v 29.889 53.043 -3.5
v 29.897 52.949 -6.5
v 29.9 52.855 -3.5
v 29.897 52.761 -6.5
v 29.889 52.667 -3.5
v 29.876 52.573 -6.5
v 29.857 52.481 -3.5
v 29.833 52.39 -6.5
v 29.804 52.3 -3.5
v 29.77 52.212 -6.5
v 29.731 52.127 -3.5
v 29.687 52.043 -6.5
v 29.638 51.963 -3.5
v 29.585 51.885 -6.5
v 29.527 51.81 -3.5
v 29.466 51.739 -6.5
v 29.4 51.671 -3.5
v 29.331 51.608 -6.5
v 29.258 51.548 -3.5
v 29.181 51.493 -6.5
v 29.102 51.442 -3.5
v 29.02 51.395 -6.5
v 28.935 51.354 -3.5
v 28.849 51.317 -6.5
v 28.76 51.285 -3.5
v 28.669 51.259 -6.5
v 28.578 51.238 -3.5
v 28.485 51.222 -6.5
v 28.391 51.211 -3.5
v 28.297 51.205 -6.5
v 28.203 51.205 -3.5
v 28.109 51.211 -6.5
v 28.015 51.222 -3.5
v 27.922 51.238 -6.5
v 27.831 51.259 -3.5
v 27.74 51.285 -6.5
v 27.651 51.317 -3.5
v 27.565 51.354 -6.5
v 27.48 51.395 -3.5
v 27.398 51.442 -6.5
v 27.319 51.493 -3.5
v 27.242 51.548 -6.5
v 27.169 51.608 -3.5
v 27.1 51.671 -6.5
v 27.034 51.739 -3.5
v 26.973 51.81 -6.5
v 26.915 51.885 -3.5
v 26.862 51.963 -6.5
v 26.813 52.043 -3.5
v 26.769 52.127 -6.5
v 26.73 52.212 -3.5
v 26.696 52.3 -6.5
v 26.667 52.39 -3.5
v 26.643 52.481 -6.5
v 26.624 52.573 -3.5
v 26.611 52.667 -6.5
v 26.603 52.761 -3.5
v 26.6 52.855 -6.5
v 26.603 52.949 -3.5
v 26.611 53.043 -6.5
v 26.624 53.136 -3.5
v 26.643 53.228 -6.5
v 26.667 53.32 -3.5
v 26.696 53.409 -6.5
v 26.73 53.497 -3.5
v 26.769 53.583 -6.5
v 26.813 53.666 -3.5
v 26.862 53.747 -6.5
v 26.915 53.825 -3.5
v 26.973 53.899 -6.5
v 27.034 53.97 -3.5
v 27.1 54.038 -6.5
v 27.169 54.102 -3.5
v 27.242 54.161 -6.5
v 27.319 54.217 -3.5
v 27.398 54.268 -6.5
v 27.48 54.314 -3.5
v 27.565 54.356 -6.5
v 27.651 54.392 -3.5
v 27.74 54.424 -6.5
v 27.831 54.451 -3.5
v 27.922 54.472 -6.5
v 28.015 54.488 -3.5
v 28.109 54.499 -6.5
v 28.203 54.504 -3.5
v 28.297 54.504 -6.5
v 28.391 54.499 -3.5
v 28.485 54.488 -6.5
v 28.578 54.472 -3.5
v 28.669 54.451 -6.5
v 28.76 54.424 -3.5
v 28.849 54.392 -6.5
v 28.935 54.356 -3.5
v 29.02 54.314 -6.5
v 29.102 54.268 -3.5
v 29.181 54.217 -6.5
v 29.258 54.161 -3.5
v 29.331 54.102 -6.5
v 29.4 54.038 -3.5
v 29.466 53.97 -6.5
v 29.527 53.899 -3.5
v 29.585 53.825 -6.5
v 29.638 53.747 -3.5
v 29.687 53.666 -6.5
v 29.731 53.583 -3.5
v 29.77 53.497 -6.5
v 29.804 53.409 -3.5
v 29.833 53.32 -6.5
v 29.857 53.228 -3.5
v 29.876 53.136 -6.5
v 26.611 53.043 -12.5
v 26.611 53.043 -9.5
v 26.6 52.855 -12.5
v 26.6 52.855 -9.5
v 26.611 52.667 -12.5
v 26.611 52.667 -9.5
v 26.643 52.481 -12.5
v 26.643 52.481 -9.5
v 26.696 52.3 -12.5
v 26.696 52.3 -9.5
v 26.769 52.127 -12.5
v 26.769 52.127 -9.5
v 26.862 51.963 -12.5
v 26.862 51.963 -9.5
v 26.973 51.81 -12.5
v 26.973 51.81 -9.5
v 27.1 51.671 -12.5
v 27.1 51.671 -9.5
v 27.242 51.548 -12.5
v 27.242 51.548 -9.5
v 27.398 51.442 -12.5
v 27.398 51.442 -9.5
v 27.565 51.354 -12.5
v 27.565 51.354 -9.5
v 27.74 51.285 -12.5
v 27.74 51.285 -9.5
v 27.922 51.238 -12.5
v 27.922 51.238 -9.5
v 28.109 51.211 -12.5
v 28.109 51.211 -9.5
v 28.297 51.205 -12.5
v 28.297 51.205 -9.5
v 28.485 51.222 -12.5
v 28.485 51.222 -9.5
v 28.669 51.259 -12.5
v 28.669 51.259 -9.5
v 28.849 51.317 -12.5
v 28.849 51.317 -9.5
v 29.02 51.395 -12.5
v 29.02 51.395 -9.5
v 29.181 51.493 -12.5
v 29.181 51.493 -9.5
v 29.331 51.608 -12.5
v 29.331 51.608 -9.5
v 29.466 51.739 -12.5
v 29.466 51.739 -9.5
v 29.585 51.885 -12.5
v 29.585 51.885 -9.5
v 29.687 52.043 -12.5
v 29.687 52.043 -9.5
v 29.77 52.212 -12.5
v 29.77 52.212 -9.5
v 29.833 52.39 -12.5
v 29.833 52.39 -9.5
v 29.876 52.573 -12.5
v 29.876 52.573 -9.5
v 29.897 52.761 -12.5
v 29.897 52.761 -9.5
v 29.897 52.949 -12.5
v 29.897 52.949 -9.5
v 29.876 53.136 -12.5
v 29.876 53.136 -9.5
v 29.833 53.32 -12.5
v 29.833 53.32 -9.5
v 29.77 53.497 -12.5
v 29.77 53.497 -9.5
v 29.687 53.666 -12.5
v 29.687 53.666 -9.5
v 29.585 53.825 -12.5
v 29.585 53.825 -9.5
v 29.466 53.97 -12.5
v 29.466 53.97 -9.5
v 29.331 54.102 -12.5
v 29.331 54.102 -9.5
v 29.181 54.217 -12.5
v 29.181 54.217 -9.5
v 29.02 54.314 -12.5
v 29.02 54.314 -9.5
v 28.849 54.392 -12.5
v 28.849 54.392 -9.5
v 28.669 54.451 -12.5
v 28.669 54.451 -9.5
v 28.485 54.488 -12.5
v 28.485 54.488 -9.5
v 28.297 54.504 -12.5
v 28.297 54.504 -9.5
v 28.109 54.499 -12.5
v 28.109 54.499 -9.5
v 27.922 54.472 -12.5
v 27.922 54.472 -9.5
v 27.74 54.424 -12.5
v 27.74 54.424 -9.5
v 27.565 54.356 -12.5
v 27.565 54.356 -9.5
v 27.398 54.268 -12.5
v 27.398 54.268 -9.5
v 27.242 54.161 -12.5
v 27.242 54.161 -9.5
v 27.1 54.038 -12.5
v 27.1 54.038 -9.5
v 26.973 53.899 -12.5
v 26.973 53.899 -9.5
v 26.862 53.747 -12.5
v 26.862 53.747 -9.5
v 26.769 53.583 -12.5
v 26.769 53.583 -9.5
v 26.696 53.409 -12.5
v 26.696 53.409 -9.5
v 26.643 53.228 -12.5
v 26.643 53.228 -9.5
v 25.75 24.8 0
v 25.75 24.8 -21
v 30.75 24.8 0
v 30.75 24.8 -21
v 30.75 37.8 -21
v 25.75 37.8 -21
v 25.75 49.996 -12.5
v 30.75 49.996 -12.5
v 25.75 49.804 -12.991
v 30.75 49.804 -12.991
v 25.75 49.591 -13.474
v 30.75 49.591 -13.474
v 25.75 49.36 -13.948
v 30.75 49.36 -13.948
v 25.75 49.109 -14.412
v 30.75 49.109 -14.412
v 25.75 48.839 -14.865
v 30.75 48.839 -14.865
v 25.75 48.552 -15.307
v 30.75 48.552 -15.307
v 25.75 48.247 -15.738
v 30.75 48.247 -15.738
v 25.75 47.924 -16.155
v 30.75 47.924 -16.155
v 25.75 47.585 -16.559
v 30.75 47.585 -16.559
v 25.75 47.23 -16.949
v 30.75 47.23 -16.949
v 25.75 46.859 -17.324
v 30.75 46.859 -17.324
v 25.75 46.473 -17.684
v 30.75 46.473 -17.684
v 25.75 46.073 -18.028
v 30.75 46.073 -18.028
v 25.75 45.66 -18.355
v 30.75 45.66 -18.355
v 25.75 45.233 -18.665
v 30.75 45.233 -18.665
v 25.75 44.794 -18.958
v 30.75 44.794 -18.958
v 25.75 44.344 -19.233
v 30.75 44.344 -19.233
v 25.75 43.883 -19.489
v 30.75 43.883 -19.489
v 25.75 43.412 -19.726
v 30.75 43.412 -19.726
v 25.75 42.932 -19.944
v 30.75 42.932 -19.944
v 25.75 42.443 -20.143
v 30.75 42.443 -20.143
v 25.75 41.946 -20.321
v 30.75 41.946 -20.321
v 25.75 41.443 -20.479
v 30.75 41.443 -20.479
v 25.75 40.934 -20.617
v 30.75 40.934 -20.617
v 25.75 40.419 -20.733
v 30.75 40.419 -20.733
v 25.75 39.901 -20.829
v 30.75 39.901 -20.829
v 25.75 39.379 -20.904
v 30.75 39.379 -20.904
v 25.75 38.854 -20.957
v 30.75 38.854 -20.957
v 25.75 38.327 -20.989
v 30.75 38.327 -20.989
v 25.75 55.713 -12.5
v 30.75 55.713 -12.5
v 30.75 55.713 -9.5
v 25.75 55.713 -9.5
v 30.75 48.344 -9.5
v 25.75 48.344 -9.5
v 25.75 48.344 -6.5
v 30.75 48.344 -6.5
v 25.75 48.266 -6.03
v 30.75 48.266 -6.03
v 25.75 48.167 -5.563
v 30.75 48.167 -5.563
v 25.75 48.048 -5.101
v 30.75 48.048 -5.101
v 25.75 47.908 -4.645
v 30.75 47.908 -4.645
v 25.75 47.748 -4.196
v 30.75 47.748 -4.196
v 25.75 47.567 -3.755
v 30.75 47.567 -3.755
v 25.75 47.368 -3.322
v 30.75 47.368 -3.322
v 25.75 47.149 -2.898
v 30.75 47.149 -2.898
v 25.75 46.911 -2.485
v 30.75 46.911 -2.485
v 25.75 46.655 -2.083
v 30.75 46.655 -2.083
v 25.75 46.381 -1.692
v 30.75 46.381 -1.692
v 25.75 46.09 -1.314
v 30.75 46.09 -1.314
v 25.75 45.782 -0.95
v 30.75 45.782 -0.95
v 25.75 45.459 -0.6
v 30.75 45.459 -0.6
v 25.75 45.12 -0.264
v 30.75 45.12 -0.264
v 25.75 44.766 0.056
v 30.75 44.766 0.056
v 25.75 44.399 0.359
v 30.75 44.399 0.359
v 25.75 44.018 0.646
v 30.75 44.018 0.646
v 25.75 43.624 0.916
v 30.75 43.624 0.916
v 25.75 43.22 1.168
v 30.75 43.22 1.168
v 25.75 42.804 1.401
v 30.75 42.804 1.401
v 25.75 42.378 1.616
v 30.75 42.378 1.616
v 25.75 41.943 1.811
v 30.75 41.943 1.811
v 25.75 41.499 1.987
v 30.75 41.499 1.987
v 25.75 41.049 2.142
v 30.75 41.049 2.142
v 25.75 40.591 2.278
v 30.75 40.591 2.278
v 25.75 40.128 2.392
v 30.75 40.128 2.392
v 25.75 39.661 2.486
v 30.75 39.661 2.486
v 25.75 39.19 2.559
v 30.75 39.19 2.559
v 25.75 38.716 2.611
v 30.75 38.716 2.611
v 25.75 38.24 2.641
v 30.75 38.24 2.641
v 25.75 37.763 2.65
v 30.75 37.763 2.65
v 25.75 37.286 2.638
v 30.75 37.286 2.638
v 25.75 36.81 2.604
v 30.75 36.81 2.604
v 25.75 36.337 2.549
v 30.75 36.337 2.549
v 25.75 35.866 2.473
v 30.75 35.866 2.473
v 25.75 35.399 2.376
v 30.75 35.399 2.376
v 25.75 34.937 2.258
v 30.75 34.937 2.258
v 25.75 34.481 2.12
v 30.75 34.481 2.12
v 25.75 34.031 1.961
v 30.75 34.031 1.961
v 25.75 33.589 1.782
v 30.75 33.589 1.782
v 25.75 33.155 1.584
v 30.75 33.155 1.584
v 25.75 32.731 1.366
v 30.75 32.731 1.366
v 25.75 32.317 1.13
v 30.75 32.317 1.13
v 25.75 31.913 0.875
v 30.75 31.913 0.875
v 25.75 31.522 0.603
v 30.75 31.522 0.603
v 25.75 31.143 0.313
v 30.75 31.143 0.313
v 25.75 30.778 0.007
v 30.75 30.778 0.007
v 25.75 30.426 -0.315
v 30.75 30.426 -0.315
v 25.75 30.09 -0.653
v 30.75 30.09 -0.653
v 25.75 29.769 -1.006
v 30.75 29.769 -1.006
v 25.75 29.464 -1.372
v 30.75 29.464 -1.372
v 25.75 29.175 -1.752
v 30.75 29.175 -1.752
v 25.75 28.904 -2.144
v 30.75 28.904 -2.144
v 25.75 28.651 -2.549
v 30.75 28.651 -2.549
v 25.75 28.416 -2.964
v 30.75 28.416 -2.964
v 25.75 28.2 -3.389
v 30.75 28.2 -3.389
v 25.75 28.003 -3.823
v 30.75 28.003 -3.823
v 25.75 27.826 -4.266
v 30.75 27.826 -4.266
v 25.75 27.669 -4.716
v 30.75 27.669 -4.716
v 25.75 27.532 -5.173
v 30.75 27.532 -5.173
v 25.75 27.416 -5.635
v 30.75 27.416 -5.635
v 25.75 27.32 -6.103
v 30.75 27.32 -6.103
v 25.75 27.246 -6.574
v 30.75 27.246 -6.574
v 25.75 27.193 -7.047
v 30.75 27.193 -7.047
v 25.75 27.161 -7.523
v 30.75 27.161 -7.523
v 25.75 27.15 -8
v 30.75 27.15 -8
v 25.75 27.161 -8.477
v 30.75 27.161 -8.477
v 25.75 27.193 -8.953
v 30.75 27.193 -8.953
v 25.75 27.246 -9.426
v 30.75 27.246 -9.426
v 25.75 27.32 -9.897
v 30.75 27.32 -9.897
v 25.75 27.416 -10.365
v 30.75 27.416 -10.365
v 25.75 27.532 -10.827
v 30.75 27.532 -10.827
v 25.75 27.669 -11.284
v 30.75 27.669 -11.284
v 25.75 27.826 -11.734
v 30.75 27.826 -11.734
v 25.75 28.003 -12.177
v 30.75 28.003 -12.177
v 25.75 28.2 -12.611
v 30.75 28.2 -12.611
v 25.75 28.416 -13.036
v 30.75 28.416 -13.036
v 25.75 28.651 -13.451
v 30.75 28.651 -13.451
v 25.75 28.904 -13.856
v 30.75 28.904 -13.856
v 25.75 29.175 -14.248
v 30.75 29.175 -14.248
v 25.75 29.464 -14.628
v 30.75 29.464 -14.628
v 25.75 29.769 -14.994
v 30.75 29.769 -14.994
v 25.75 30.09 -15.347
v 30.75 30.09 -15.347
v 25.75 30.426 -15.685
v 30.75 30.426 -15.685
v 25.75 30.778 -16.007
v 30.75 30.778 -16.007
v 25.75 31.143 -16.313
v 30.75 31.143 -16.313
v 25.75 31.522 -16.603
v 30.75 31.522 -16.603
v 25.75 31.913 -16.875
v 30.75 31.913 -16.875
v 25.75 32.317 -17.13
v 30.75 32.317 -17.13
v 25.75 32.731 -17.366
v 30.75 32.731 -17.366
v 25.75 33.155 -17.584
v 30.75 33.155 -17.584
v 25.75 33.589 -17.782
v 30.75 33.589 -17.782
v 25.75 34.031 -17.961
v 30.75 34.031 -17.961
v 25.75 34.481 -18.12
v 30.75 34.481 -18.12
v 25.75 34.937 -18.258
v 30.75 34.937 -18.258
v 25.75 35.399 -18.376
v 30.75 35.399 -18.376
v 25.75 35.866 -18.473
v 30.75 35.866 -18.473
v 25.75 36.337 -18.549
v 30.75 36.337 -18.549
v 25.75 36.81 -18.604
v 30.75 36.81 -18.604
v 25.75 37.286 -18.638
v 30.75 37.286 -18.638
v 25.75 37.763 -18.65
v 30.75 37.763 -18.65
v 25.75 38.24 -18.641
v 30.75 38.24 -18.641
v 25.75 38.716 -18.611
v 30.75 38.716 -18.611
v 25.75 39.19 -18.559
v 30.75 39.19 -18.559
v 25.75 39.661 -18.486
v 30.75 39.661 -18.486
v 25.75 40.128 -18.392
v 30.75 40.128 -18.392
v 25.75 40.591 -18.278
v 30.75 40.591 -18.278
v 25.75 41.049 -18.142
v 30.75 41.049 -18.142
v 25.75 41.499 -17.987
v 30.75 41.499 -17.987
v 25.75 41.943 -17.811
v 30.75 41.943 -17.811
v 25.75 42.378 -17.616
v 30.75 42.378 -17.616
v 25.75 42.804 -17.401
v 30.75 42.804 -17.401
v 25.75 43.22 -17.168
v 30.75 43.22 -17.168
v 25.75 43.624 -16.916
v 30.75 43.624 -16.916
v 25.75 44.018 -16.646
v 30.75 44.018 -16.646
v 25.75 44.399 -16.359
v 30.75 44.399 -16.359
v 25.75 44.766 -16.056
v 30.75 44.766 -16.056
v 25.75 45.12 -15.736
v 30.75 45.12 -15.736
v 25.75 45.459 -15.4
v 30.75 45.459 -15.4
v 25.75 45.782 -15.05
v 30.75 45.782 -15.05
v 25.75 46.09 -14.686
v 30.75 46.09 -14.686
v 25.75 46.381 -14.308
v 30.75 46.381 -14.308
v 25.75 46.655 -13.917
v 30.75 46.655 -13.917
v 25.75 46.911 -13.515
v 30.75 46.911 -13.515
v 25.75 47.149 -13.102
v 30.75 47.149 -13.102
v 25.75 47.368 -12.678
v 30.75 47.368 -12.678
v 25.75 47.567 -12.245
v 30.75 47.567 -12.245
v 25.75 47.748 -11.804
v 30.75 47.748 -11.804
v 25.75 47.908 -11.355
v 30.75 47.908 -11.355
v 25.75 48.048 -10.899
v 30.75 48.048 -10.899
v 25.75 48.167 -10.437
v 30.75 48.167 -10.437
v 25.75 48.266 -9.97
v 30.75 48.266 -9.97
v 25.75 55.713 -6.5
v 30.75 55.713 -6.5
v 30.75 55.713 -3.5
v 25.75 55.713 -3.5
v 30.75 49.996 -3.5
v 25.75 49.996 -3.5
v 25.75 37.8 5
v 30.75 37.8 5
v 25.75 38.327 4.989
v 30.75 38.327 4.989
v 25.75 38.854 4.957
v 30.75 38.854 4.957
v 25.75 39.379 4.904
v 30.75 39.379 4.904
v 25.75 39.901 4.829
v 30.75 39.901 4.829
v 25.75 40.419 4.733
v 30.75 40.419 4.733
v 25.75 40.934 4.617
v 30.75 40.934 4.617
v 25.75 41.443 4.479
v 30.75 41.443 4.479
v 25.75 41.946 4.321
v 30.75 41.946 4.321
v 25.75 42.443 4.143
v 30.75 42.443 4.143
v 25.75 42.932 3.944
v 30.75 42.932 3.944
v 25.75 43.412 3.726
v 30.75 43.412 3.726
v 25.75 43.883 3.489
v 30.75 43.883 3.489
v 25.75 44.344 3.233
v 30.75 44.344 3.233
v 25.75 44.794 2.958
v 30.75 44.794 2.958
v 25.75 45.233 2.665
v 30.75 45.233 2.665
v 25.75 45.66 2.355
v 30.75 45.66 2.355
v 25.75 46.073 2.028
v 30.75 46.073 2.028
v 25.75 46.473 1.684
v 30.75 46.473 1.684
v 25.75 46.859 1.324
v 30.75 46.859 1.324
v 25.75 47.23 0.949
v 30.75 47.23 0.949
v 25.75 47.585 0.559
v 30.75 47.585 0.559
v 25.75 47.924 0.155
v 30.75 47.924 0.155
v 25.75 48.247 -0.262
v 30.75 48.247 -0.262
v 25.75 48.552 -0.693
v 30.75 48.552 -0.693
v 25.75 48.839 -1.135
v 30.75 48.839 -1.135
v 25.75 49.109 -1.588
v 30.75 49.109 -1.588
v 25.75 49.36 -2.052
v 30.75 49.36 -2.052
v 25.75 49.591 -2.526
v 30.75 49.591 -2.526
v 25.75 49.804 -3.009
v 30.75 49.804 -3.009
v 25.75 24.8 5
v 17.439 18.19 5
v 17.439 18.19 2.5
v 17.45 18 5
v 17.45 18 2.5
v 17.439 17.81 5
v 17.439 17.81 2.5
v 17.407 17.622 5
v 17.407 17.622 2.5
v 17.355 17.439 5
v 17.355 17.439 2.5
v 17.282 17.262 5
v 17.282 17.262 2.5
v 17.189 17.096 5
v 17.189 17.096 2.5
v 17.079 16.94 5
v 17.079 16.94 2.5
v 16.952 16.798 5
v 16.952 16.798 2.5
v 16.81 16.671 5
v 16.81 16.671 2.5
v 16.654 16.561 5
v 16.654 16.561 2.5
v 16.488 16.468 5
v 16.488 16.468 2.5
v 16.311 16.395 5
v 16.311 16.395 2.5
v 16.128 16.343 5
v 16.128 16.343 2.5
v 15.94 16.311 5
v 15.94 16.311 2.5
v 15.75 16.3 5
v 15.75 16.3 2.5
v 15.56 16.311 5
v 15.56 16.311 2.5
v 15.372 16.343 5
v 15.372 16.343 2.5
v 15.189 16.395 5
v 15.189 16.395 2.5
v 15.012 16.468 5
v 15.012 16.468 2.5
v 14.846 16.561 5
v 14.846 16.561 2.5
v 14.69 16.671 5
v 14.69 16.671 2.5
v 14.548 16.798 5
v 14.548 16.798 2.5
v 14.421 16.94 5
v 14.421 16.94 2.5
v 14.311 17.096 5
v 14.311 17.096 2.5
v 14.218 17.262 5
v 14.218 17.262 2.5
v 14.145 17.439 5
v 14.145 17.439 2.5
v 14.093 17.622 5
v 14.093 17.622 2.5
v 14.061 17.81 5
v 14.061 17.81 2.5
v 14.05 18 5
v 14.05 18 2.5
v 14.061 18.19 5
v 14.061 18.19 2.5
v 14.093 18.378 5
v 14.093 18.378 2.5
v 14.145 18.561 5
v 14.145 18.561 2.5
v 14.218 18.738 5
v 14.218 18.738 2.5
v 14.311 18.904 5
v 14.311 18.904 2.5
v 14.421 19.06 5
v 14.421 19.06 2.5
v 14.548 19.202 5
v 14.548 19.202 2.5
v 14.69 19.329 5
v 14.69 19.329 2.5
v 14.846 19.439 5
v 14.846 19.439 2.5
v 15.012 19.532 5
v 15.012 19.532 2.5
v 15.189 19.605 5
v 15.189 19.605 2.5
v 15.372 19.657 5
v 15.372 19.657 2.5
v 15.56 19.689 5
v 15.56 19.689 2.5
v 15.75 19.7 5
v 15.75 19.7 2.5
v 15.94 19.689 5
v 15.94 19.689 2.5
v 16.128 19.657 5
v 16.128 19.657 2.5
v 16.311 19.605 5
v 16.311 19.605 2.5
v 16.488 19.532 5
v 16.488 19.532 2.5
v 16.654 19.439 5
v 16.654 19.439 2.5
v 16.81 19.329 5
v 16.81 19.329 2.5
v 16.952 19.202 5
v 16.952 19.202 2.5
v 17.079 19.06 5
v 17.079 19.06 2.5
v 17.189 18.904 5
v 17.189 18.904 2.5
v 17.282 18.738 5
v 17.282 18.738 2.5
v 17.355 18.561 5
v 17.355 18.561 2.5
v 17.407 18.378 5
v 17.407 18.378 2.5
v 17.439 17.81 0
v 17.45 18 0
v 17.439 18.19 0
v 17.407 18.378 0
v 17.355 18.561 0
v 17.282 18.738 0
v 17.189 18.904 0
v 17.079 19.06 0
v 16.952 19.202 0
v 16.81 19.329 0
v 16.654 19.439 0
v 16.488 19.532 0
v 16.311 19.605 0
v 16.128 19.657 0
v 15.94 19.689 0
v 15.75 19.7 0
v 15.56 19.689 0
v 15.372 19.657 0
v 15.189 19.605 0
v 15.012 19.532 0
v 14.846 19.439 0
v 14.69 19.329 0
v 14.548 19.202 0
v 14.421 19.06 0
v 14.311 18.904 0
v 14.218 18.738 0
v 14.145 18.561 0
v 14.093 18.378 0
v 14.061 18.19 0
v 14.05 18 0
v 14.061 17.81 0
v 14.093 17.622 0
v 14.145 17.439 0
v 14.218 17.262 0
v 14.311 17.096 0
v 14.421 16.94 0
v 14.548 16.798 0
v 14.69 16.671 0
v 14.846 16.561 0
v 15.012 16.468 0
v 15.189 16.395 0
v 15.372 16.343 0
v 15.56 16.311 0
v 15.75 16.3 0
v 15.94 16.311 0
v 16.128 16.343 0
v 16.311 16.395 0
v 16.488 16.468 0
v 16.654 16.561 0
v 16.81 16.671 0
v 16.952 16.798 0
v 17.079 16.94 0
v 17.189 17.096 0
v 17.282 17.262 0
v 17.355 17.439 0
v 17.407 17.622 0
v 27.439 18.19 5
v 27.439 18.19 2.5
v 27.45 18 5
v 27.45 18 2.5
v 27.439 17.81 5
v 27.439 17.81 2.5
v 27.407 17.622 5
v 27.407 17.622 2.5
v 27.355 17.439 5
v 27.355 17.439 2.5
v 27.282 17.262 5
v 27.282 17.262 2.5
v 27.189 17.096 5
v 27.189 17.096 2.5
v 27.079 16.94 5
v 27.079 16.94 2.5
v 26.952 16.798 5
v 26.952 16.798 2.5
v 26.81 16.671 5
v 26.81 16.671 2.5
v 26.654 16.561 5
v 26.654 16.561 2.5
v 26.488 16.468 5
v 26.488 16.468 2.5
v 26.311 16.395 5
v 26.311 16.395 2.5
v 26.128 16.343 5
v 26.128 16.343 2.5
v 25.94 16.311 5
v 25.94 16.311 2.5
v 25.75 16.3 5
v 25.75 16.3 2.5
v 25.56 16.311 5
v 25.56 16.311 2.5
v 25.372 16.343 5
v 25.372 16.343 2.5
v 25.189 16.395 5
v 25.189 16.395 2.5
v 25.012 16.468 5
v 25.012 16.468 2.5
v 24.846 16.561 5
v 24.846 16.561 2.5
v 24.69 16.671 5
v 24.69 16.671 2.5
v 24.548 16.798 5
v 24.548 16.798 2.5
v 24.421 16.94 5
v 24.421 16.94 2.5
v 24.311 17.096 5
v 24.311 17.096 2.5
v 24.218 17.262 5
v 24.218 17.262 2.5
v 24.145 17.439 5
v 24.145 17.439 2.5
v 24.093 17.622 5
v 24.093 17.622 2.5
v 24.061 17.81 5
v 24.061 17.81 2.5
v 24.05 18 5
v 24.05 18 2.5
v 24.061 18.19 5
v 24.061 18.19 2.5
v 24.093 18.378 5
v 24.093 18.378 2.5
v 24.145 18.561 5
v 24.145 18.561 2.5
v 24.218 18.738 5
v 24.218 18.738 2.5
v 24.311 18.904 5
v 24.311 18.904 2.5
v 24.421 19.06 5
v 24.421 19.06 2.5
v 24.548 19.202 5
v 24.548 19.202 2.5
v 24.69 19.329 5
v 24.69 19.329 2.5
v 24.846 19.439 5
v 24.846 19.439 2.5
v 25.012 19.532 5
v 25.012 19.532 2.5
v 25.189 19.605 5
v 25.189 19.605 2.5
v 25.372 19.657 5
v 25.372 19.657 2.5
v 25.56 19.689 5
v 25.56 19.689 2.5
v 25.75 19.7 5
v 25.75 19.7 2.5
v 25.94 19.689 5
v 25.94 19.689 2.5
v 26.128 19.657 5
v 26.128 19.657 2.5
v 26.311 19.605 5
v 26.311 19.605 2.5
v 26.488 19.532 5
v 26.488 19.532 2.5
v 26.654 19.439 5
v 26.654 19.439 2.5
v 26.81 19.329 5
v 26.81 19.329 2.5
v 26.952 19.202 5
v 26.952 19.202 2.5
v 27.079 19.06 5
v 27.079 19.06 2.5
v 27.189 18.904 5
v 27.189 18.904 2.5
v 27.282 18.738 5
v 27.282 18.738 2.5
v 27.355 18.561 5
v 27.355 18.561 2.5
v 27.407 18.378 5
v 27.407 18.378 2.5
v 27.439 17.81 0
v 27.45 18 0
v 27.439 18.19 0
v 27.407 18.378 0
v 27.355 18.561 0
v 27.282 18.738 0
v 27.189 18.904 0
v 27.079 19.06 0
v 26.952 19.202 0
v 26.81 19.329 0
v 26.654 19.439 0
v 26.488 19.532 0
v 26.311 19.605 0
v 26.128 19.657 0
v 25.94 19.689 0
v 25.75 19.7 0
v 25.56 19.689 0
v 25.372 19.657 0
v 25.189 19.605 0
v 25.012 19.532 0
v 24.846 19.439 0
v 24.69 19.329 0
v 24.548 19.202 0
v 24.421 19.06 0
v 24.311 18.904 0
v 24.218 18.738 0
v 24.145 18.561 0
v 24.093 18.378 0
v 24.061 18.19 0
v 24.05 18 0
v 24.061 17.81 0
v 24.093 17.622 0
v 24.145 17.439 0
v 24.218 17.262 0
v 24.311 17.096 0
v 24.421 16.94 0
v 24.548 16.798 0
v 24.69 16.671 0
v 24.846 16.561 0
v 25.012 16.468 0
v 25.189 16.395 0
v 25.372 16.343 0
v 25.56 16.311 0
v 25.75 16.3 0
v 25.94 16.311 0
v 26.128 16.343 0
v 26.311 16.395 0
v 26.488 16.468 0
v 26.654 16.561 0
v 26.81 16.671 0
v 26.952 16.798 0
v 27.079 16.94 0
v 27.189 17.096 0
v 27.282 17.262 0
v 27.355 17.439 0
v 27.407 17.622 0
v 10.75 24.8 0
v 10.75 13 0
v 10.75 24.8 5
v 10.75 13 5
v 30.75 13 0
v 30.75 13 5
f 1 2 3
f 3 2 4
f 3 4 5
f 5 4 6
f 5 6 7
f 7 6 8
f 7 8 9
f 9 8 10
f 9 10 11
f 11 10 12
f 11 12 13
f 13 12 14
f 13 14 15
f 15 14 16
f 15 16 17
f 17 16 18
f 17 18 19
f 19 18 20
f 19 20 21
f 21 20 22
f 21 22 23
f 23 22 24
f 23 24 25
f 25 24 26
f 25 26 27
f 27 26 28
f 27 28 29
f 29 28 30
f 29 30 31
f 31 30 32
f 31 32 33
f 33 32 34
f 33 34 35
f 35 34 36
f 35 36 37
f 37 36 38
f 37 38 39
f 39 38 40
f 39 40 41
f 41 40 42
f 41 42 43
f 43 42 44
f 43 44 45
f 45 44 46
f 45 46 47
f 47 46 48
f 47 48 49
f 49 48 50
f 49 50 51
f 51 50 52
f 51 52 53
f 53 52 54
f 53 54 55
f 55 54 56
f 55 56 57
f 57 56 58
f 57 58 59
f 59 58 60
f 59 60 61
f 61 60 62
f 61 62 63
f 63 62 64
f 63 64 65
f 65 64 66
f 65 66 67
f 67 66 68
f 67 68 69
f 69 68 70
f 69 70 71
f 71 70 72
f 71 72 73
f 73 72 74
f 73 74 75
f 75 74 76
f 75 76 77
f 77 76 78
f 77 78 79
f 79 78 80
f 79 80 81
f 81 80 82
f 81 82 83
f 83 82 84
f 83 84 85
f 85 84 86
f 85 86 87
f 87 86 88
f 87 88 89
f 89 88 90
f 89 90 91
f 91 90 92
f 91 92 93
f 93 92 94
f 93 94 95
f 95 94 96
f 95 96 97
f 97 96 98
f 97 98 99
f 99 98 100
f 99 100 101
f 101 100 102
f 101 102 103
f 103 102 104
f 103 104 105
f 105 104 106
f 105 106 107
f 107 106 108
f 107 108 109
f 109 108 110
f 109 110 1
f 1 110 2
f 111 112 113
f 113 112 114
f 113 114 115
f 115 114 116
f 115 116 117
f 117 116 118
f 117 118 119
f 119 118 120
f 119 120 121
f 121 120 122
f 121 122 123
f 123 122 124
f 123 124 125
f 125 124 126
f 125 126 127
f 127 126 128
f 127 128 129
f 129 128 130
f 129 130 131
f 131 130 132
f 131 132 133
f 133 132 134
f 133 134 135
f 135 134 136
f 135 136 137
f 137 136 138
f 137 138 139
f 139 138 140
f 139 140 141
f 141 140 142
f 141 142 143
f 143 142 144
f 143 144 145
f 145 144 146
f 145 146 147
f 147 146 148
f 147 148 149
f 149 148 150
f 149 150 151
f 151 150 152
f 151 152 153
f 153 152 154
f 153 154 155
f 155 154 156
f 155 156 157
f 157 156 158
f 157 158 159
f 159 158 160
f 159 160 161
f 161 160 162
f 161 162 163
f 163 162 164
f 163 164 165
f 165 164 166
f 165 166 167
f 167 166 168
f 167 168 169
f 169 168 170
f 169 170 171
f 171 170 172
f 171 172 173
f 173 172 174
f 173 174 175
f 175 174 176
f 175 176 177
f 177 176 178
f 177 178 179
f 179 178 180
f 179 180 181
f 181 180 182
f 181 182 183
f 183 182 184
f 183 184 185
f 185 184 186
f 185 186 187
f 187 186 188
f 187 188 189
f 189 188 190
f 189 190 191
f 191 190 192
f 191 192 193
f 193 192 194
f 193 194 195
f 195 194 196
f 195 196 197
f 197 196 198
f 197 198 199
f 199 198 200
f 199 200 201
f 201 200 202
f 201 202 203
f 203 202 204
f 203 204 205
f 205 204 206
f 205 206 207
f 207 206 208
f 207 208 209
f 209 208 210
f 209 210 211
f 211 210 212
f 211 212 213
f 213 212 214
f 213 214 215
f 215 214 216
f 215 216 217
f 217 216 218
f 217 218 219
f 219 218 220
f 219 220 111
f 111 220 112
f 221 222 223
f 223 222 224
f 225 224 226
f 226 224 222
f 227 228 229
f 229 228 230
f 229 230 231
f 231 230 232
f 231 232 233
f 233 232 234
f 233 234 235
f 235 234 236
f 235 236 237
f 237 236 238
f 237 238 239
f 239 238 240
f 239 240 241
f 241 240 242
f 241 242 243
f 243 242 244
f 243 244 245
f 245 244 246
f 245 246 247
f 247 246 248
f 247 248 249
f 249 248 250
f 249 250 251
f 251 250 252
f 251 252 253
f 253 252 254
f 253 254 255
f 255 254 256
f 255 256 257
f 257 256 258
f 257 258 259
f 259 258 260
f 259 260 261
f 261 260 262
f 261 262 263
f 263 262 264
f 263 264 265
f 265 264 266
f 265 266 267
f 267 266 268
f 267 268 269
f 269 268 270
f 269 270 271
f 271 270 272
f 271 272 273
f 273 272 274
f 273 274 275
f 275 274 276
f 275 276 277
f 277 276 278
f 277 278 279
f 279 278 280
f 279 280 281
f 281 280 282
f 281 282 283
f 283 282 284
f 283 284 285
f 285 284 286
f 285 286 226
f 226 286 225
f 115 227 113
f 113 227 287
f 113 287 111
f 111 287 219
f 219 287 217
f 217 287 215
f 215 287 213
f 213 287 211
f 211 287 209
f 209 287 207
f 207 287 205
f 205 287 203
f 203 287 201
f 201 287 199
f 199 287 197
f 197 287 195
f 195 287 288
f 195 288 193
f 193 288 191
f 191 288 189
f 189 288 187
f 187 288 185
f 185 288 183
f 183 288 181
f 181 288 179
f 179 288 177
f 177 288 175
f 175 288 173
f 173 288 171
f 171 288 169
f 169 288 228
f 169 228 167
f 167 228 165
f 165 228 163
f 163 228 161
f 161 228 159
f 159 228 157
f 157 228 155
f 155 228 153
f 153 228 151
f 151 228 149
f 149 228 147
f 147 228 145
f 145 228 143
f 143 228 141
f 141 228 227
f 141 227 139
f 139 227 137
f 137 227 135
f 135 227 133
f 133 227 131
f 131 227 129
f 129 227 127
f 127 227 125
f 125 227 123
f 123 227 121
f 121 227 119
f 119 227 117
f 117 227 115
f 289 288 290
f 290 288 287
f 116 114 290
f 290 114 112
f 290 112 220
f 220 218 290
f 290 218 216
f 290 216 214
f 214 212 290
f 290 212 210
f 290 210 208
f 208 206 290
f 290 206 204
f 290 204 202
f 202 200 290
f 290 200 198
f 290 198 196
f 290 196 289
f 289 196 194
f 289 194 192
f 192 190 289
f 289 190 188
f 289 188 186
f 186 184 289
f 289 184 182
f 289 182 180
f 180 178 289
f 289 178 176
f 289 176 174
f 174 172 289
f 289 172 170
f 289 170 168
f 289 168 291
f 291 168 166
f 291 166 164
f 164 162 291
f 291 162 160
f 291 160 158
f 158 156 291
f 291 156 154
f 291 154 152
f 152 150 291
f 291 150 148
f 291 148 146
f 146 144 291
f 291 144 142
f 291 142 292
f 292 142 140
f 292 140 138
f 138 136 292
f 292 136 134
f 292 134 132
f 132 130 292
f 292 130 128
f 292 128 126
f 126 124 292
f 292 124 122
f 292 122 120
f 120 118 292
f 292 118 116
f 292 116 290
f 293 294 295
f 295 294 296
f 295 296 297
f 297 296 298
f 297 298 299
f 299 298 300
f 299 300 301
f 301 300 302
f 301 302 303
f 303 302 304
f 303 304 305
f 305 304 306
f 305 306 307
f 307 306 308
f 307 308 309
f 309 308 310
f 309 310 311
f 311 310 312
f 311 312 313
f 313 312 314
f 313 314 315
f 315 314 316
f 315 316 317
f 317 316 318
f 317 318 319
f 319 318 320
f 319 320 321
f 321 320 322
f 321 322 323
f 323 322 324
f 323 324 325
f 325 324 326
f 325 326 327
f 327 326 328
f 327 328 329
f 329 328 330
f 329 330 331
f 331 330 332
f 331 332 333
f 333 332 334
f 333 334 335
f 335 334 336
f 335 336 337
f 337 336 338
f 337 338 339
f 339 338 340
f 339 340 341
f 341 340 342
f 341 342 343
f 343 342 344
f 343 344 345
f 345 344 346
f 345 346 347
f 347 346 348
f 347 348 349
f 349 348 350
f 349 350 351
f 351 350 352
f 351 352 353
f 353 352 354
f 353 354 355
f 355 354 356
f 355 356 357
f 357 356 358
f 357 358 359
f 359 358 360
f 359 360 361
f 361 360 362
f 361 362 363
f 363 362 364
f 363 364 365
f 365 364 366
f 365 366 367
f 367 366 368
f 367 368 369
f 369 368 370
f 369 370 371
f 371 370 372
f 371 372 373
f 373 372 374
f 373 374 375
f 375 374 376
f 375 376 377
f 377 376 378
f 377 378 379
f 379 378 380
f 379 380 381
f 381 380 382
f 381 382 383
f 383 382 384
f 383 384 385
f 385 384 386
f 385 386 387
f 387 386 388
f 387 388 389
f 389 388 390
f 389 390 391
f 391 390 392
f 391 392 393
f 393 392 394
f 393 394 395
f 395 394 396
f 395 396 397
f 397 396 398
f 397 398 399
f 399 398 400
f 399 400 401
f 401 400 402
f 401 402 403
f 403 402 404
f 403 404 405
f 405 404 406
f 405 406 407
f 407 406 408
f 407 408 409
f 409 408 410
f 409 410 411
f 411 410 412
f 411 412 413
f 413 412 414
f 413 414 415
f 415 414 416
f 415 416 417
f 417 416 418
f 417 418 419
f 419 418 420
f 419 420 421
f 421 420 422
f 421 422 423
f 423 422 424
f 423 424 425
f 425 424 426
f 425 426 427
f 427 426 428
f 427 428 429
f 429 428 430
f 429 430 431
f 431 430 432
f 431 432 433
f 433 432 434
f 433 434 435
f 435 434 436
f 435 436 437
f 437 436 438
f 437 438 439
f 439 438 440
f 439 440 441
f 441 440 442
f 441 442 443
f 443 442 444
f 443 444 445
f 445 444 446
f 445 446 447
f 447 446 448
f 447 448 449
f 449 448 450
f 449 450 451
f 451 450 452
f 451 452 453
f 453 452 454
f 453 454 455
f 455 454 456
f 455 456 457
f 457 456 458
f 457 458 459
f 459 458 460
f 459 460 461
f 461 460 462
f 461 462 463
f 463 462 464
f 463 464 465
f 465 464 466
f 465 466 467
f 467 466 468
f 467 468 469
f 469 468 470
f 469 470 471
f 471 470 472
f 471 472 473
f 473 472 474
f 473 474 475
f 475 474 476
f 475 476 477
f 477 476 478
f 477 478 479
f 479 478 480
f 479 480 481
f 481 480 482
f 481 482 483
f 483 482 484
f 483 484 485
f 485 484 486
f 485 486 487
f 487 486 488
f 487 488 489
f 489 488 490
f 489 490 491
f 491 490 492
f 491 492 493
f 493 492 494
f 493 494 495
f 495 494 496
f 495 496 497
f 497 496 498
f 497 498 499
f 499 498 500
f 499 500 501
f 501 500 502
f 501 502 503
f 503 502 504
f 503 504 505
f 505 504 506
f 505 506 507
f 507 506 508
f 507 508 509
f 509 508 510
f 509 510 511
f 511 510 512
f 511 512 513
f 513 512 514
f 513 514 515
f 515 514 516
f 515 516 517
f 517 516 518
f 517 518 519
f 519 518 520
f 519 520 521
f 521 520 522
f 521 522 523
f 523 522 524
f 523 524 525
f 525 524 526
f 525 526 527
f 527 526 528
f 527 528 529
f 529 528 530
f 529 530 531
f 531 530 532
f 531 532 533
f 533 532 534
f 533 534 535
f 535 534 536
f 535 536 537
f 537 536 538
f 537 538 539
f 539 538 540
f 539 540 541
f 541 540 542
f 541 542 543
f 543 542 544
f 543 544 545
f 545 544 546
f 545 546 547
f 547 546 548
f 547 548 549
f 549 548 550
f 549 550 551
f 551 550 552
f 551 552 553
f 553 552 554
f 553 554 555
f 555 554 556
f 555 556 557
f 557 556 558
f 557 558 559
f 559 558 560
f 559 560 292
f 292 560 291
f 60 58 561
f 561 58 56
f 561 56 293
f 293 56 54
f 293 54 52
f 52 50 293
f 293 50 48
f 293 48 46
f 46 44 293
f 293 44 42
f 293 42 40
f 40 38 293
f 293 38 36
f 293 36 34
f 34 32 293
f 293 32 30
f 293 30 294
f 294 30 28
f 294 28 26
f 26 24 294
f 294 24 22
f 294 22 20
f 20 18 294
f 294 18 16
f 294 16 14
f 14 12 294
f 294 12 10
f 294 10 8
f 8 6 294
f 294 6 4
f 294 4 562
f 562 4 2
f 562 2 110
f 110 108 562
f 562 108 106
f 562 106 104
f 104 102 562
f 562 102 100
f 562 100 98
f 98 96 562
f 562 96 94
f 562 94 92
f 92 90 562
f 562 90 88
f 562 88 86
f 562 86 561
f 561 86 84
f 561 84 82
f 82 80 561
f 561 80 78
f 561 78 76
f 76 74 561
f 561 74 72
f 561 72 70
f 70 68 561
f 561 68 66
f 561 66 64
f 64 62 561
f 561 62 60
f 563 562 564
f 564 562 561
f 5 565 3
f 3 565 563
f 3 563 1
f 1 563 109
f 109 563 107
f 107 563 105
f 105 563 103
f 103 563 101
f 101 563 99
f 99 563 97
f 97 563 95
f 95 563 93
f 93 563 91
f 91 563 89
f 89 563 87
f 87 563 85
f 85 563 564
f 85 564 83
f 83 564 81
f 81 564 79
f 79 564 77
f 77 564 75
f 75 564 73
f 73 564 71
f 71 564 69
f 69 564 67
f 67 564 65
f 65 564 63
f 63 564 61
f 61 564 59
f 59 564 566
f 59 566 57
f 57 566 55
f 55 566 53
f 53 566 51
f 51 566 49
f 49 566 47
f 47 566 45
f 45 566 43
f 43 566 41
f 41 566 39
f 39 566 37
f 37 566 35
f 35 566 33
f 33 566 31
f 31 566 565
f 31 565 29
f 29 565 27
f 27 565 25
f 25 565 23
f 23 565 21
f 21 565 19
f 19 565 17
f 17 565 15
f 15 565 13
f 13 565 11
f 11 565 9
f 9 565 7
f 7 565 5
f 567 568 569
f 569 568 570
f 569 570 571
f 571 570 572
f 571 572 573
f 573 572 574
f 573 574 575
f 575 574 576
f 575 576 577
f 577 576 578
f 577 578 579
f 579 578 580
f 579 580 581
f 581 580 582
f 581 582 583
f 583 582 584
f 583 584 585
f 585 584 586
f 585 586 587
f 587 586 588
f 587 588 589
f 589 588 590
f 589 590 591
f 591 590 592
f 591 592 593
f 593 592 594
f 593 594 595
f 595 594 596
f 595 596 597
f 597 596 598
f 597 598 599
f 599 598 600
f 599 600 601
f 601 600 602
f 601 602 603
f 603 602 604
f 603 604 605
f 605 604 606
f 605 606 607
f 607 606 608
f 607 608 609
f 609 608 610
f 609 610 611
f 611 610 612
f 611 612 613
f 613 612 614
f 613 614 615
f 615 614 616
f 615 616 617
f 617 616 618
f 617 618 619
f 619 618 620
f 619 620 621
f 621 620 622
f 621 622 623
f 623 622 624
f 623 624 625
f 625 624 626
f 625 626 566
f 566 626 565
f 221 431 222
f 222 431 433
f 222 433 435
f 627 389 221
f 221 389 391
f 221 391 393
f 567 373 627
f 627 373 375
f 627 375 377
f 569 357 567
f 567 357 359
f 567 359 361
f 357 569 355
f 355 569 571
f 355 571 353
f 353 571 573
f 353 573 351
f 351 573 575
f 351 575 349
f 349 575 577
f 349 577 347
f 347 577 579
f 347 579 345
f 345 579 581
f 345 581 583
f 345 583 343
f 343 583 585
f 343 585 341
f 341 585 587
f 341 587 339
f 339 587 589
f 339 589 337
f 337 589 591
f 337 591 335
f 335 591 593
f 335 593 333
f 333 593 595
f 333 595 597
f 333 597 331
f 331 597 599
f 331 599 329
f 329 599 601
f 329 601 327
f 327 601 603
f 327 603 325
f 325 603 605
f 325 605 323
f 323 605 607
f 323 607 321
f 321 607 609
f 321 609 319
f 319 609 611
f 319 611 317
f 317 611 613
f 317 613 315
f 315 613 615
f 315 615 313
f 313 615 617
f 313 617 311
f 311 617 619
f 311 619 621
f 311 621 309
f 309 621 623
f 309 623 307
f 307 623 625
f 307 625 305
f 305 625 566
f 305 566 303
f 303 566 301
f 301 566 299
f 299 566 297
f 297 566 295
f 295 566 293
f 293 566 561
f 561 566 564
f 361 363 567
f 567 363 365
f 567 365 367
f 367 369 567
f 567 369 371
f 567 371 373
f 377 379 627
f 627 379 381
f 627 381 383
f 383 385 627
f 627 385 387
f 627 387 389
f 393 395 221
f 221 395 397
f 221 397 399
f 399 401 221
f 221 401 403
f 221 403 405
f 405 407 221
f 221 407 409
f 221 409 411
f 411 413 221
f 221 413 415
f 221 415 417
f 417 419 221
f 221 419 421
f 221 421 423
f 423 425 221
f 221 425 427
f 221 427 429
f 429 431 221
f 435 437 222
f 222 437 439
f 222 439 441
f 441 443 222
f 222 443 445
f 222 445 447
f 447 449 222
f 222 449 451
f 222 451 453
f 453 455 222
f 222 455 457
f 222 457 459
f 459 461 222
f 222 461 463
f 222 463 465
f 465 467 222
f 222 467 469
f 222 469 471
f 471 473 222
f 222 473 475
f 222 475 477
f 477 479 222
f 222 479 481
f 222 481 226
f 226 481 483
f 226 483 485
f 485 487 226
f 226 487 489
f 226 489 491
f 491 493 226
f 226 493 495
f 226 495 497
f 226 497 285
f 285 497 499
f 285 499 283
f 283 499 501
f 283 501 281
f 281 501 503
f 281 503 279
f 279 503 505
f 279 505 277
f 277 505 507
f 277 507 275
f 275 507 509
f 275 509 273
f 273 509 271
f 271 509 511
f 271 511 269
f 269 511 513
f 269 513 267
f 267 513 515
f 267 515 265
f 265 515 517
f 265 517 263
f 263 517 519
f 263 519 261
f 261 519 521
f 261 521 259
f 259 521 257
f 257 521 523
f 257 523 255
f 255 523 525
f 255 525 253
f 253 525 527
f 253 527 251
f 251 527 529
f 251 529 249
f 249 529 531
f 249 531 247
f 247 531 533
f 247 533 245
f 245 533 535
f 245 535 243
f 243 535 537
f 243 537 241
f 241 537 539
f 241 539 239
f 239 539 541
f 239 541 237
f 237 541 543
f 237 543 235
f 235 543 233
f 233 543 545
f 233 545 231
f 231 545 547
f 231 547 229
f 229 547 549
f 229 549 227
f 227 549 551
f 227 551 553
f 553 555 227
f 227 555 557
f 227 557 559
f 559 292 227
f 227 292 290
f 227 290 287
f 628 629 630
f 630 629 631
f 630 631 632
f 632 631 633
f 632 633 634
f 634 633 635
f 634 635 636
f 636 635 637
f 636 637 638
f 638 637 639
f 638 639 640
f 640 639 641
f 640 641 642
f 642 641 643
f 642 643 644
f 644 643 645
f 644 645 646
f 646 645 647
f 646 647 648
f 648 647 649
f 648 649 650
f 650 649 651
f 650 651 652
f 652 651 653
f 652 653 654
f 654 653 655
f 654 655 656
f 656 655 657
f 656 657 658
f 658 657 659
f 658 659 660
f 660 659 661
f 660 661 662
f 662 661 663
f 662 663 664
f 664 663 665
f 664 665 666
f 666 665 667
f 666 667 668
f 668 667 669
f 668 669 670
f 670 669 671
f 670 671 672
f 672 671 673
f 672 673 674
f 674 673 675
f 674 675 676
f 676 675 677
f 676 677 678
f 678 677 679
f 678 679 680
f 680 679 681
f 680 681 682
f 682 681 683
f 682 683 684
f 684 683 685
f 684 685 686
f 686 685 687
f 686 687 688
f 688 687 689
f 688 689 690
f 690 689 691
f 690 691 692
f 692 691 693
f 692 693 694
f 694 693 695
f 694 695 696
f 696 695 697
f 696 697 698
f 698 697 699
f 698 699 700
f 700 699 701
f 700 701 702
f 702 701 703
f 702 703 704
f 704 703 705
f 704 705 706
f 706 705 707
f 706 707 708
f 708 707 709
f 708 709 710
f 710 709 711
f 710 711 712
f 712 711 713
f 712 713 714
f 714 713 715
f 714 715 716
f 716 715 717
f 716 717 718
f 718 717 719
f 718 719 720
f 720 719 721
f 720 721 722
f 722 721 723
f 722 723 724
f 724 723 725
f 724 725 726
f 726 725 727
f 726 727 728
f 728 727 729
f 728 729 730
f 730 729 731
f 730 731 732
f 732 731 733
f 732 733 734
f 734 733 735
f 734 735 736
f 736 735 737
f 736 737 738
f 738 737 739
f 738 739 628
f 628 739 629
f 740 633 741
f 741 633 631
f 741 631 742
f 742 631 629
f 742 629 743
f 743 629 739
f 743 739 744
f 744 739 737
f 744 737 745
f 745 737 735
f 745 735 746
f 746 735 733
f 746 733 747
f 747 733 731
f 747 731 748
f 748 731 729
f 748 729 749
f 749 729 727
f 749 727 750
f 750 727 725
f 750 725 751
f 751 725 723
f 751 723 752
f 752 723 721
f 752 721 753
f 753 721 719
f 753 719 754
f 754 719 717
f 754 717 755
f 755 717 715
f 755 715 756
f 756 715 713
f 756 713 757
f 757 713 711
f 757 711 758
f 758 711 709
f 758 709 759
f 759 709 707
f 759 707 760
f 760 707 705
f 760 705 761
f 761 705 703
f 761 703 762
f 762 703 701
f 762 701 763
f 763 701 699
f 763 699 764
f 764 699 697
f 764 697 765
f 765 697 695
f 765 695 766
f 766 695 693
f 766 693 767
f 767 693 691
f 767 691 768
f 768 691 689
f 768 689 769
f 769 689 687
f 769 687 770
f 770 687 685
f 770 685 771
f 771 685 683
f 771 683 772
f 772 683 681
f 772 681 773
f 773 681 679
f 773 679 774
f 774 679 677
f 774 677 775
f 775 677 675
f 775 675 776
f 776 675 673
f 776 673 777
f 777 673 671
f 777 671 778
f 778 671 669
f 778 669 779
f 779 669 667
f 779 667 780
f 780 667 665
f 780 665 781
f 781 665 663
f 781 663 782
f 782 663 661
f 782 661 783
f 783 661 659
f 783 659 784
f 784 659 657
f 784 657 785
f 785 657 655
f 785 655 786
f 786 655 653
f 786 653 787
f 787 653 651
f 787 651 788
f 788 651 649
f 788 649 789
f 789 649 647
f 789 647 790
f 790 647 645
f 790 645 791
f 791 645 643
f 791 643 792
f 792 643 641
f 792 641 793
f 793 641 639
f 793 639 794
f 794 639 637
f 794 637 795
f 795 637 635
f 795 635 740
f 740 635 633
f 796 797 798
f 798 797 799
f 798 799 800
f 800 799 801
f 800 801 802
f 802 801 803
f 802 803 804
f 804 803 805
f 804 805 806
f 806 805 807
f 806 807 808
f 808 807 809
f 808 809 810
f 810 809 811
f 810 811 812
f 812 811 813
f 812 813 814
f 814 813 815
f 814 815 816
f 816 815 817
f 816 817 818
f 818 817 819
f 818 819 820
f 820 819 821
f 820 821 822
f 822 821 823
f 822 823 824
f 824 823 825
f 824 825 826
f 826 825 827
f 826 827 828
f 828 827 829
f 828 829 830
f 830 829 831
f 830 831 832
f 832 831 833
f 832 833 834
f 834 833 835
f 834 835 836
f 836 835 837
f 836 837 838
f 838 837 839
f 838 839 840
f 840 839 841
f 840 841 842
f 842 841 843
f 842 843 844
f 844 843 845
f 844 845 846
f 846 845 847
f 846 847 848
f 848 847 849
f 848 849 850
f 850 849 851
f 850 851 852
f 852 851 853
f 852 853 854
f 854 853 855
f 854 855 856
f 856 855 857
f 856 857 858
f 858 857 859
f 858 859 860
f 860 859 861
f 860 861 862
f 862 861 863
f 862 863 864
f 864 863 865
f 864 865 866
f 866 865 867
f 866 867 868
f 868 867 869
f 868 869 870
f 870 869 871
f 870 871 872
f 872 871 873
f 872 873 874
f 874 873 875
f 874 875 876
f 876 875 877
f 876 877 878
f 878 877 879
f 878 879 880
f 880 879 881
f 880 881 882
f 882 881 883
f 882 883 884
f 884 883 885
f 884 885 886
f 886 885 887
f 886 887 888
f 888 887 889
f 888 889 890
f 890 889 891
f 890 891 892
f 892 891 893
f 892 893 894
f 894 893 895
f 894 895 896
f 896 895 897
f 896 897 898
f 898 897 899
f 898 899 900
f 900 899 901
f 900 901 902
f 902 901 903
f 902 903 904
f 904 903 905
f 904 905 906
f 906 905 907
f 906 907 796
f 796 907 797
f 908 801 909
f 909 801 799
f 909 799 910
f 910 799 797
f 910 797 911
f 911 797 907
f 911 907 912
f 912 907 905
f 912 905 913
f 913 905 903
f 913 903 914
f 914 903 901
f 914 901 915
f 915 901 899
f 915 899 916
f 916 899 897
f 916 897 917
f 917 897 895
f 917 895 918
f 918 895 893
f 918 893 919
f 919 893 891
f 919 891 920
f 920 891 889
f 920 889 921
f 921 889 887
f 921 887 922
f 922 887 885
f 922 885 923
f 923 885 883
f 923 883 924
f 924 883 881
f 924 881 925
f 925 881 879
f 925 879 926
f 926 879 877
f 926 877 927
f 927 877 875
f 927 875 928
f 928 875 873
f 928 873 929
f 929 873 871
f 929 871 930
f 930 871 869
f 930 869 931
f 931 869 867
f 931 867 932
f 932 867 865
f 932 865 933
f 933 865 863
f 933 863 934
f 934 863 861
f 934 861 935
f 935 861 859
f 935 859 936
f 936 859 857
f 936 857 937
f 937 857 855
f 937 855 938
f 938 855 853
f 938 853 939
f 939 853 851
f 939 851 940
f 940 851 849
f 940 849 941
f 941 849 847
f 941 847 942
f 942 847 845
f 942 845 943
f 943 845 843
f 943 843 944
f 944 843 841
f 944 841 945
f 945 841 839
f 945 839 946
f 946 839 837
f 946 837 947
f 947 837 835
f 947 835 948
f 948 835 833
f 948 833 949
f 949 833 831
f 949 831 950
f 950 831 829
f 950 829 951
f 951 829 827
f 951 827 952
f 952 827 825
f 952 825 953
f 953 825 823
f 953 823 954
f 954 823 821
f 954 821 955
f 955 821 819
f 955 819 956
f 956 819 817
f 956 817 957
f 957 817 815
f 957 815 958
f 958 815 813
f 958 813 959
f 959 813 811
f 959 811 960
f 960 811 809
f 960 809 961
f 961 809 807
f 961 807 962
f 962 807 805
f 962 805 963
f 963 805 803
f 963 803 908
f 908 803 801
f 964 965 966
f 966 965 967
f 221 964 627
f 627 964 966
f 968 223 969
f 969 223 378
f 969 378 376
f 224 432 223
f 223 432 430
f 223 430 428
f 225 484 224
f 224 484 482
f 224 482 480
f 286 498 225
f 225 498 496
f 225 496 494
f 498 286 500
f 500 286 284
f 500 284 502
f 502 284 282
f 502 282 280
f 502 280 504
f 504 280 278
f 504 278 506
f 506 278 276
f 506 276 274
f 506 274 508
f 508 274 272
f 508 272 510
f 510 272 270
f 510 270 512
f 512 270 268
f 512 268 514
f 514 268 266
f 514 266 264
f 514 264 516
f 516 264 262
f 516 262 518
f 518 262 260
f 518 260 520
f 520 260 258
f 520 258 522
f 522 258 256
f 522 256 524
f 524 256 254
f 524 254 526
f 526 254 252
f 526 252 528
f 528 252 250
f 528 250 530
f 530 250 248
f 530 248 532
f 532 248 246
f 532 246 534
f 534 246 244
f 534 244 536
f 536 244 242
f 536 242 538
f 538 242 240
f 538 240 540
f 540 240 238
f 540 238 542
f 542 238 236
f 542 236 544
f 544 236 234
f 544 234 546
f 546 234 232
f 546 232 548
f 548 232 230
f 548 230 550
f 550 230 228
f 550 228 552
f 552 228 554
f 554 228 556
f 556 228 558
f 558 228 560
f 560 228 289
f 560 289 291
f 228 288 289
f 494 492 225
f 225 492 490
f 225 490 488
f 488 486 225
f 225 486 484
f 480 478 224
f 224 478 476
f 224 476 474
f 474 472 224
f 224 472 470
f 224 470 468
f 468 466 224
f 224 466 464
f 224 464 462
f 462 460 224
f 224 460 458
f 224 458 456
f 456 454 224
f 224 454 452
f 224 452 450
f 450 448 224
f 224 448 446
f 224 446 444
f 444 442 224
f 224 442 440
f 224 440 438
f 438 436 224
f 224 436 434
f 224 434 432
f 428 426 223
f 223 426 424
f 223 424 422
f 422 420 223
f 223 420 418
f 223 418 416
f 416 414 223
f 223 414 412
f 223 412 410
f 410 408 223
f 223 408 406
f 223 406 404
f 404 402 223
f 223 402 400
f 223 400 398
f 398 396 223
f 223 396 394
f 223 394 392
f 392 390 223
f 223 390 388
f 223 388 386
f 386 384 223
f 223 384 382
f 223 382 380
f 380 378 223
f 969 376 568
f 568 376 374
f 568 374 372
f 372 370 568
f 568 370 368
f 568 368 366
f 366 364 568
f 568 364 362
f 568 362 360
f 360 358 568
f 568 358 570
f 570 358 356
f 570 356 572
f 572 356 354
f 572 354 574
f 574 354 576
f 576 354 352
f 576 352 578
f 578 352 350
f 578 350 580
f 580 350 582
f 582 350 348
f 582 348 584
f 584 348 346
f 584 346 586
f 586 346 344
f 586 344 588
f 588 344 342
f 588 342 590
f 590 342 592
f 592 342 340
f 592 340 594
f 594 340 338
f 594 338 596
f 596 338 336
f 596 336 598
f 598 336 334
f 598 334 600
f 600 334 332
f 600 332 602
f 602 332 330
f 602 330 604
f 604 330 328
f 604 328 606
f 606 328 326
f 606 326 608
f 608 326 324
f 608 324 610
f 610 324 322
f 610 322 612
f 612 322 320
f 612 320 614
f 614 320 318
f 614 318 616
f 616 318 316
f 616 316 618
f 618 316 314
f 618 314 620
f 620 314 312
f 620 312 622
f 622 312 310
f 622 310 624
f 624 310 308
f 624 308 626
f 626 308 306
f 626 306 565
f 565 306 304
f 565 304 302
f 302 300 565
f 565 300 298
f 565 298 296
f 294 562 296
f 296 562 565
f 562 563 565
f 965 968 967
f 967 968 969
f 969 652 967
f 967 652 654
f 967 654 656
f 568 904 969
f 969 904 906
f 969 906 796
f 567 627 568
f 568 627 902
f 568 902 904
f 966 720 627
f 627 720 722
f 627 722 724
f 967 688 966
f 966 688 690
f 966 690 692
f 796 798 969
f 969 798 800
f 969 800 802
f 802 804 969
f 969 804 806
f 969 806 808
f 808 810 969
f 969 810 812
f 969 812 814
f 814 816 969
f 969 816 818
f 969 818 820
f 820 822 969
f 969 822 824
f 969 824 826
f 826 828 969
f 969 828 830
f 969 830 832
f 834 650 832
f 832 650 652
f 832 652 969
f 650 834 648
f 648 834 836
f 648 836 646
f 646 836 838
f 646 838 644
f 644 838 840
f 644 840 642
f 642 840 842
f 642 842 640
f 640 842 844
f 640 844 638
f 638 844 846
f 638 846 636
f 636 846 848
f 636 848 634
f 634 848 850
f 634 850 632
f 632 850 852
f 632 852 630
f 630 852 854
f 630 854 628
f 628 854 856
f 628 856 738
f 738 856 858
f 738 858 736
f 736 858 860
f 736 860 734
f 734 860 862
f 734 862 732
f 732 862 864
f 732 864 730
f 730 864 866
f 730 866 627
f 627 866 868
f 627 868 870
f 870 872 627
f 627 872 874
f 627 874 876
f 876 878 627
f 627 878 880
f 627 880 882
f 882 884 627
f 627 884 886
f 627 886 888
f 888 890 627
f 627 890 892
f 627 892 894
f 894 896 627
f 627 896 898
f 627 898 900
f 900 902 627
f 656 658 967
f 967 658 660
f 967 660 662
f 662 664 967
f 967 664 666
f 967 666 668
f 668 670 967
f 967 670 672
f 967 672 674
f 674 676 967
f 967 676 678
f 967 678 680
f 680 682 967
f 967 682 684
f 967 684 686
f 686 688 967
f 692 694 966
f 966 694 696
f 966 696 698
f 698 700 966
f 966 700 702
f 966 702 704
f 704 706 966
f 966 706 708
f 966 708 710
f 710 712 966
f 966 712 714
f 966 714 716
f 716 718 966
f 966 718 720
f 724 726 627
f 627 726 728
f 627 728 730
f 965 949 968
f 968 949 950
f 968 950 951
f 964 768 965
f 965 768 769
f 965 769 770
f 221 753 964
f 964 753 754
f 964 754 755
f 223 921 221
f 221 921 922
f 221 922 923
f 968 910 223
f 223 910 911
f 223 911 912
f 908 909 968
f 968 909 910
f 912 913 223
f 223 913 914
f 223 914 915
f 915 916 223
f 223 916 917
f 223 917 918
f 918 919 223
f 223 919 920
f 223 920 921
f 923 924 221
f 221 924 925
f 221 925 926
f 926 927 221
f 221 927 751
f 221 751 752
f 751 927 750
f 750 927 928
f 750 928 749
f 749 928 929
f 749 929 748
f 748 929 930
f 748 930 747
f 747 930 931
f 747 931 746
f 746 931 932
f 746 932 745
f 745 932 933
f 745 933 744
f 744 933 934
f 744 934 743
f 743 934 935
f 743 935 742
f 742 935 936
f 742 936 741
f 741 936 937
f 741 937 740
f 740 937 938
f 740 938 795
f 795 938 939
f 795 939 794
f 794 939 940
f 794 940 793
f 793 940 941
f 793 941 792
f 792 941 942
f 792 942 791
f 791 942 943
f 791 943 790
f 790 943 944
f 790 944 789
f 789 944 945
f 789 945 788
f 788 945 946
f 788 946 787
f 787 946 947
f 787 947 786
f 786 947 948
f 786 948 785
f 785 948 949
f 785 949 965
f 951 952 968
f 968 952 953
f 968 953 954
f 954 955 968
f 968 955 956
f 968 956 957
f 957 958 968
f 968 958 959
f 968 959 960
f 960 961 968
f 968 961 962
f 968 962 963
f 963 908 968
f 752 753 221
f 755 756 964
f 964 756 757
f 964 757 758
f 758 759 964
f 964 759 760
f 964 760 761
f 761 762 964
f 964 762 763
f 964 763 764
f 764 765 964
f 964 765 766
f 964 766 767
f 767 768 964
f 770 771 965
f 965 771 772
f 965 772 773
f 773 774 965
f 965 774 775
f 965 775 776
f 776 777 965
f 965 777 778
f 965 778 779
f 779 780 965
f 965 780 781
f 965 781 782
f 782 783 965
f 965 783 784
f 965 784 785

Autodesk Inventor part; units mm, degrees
ref_plane "YZ Plane" through (0, 0, 0) normal (1, 0, 0) x (0, 1, 0)
ref_plane "XZ Plane" through (0, 0, 0) normal (0, 1, 0) x (-1, 0, 0)
ref_plane "XY Plane" through (0, 0, 0) normal (0, 0, 1) x (1, 0, 0)
ref_plane "Work Plane1" through (0, 0, 0) normal (0, 0, 1) x (1, 0, 0)
sketch "Sketch1" plane through (0, 0, 0) normal (0, 0, 1) x (1, 0, 0)
  circle A0 centre (25.75, 18) radius 1.7 projected
  circle A1 centre (-4.25, 18) radius 1.7 projected
  circle A2 centre (15.75, 18) radius 1.7 projected
  circle A3 centre (25.75, -18) radius 1.7 projected
  circle A4 centre (15.75, -18) radius 1.7 projected
  circle A5 centre (-4.25, -18) radius 1.7 projected
  line L0 (-12.45, 24.7) -> (32.45, 24.7) construction
  line L1 (-12.45, -24.7) -> (-12.45, 24.7) projected
  line L2 (-12.45, -24.7) -> (32.45, -24.7) projected
  line L3 (32.45, 24.7) -> (32.45, -24.7) projected
  circle A6 centre (-2.25, 0) radius 5.2 projected
  circle A7 centre (5.75, -18) radius 1.7 projected
  circle A8 centre (5.75, 18) radius 1.7 projected
  line L4 (10.75, 24.8) -> (30.75, 24.8)
  line L5 (30.75, 24.8) -> (30.75, 13)
  line L6 (30.75, 13) -> (10.75, 13)
  line L7 (10.75, 13) -> (10.75, 24.8)
  point P0 (0, 0)
  dimension "d0" = 5
  dimension "d1" = 5
  dimension "d2" = 5
  dimension "d3" = 0.1
extrude "Extrusion1" add sketch "Sketch1" along normal blind 5 contours L4 L5 L6 L7
sketch "Sketch2" plane through (30.75, 13, 0) normal (1, 0, 0) x (0, 0, -1)
  line L0 (0, 11.8) -> (-5, 11.8) projected
  line L1 (-5, 11.8) -> (21, 11.8)
  line L2 (21, 11.8) -> (21, 37.8)
  line L3 (21, 37.8) -> (-5, 37.8)
  line L4 (-5, 37.8) -> (-5, 11.8)
  circle A0 centre (8, 24.8) radius 10.65
  circle A1 centre (8, 24.8) radius 13
  line L5 (6.5, 37.7132) -> (6.5, 35.3438)
  line L6 (9.5, 37.7132) -> (9.5, 35.3438)
  line L7 (8, 37.8) -> (8, 24.8) construction
  line L8 (6.5, 35.3438) -> (3.5, 35.3438)
  line L9 (3.5, 35.3438) -> (3.5, 42.7132)
  line L10 (3.5, 42.7132) -> (6.5, 42.7132)
  line L11 (6.5, 42.7132) -> (6.5, 35.3438)
  line L12 (12.5, 35.3438) -> (12.5, 42.7132)
  line L13 (12.5, 42.7132) -> (9.5, 42.7132)
  line L14 (9.5, 42.7132) -> (9.5, 35.3438)
  line L15 (9.5, 35.3438) -> (12.5, 35.3438)
  point P0 (0, -13)
  point P1 (21, 24.8)
  point P2 (-5, 24.8)
  point P3 (21, 24.8)
  point P4 (12.5, 36.9963)
  point P5 (3.5, 36.9963)
  dimension "d6" = 26
  dimension "d7" = 26
  dimension "d8" = 21.3
  dimension "d9" = 3
  dimension "d10" = 3
  dimension "d11" = 5
extrude "Extrusion2" add sketch "Sketch2" against normal blind 5 contours L0 L4 A1 L1 | A1 L2 L1 | A1 L9 L8 A0 L15 L12 | L9 L3 L11 A1 | A1 L5 L8 L9 | L12 L15 L6 A1 | A1 L14 L3 L12 | L9 L10 L11 L3 | L3 L14 L13 L12
sketch "Sketch3" plane through (30.75, 49.9963, -3.5) normal (0, 0, 1) x (1, 0, 0)
  line L0 (0, 5.7169) -> (0, 0) projected
  line L1 (0, 5.7169) -> (-5, 5.7169) projected
  line L2 (-5, 0) -> (-5, 5.7169) projected
  line L3 (0, 0) -> (-5, 0) projected
  circle A0 centre (-2.5, 2.8584) radius 1.65
  point P0 (-30.75, -49.9963)
  point P1 (-5, 2.8584)
  point P2 (-2.5, 5.7169)
  dimension "d14" = 3.3
extrude "Extrusion3" cut sketch "Sketch3" against normal through all contours A0
equation "\"d6\" = d7"
properties part number "hopper motor holder"
